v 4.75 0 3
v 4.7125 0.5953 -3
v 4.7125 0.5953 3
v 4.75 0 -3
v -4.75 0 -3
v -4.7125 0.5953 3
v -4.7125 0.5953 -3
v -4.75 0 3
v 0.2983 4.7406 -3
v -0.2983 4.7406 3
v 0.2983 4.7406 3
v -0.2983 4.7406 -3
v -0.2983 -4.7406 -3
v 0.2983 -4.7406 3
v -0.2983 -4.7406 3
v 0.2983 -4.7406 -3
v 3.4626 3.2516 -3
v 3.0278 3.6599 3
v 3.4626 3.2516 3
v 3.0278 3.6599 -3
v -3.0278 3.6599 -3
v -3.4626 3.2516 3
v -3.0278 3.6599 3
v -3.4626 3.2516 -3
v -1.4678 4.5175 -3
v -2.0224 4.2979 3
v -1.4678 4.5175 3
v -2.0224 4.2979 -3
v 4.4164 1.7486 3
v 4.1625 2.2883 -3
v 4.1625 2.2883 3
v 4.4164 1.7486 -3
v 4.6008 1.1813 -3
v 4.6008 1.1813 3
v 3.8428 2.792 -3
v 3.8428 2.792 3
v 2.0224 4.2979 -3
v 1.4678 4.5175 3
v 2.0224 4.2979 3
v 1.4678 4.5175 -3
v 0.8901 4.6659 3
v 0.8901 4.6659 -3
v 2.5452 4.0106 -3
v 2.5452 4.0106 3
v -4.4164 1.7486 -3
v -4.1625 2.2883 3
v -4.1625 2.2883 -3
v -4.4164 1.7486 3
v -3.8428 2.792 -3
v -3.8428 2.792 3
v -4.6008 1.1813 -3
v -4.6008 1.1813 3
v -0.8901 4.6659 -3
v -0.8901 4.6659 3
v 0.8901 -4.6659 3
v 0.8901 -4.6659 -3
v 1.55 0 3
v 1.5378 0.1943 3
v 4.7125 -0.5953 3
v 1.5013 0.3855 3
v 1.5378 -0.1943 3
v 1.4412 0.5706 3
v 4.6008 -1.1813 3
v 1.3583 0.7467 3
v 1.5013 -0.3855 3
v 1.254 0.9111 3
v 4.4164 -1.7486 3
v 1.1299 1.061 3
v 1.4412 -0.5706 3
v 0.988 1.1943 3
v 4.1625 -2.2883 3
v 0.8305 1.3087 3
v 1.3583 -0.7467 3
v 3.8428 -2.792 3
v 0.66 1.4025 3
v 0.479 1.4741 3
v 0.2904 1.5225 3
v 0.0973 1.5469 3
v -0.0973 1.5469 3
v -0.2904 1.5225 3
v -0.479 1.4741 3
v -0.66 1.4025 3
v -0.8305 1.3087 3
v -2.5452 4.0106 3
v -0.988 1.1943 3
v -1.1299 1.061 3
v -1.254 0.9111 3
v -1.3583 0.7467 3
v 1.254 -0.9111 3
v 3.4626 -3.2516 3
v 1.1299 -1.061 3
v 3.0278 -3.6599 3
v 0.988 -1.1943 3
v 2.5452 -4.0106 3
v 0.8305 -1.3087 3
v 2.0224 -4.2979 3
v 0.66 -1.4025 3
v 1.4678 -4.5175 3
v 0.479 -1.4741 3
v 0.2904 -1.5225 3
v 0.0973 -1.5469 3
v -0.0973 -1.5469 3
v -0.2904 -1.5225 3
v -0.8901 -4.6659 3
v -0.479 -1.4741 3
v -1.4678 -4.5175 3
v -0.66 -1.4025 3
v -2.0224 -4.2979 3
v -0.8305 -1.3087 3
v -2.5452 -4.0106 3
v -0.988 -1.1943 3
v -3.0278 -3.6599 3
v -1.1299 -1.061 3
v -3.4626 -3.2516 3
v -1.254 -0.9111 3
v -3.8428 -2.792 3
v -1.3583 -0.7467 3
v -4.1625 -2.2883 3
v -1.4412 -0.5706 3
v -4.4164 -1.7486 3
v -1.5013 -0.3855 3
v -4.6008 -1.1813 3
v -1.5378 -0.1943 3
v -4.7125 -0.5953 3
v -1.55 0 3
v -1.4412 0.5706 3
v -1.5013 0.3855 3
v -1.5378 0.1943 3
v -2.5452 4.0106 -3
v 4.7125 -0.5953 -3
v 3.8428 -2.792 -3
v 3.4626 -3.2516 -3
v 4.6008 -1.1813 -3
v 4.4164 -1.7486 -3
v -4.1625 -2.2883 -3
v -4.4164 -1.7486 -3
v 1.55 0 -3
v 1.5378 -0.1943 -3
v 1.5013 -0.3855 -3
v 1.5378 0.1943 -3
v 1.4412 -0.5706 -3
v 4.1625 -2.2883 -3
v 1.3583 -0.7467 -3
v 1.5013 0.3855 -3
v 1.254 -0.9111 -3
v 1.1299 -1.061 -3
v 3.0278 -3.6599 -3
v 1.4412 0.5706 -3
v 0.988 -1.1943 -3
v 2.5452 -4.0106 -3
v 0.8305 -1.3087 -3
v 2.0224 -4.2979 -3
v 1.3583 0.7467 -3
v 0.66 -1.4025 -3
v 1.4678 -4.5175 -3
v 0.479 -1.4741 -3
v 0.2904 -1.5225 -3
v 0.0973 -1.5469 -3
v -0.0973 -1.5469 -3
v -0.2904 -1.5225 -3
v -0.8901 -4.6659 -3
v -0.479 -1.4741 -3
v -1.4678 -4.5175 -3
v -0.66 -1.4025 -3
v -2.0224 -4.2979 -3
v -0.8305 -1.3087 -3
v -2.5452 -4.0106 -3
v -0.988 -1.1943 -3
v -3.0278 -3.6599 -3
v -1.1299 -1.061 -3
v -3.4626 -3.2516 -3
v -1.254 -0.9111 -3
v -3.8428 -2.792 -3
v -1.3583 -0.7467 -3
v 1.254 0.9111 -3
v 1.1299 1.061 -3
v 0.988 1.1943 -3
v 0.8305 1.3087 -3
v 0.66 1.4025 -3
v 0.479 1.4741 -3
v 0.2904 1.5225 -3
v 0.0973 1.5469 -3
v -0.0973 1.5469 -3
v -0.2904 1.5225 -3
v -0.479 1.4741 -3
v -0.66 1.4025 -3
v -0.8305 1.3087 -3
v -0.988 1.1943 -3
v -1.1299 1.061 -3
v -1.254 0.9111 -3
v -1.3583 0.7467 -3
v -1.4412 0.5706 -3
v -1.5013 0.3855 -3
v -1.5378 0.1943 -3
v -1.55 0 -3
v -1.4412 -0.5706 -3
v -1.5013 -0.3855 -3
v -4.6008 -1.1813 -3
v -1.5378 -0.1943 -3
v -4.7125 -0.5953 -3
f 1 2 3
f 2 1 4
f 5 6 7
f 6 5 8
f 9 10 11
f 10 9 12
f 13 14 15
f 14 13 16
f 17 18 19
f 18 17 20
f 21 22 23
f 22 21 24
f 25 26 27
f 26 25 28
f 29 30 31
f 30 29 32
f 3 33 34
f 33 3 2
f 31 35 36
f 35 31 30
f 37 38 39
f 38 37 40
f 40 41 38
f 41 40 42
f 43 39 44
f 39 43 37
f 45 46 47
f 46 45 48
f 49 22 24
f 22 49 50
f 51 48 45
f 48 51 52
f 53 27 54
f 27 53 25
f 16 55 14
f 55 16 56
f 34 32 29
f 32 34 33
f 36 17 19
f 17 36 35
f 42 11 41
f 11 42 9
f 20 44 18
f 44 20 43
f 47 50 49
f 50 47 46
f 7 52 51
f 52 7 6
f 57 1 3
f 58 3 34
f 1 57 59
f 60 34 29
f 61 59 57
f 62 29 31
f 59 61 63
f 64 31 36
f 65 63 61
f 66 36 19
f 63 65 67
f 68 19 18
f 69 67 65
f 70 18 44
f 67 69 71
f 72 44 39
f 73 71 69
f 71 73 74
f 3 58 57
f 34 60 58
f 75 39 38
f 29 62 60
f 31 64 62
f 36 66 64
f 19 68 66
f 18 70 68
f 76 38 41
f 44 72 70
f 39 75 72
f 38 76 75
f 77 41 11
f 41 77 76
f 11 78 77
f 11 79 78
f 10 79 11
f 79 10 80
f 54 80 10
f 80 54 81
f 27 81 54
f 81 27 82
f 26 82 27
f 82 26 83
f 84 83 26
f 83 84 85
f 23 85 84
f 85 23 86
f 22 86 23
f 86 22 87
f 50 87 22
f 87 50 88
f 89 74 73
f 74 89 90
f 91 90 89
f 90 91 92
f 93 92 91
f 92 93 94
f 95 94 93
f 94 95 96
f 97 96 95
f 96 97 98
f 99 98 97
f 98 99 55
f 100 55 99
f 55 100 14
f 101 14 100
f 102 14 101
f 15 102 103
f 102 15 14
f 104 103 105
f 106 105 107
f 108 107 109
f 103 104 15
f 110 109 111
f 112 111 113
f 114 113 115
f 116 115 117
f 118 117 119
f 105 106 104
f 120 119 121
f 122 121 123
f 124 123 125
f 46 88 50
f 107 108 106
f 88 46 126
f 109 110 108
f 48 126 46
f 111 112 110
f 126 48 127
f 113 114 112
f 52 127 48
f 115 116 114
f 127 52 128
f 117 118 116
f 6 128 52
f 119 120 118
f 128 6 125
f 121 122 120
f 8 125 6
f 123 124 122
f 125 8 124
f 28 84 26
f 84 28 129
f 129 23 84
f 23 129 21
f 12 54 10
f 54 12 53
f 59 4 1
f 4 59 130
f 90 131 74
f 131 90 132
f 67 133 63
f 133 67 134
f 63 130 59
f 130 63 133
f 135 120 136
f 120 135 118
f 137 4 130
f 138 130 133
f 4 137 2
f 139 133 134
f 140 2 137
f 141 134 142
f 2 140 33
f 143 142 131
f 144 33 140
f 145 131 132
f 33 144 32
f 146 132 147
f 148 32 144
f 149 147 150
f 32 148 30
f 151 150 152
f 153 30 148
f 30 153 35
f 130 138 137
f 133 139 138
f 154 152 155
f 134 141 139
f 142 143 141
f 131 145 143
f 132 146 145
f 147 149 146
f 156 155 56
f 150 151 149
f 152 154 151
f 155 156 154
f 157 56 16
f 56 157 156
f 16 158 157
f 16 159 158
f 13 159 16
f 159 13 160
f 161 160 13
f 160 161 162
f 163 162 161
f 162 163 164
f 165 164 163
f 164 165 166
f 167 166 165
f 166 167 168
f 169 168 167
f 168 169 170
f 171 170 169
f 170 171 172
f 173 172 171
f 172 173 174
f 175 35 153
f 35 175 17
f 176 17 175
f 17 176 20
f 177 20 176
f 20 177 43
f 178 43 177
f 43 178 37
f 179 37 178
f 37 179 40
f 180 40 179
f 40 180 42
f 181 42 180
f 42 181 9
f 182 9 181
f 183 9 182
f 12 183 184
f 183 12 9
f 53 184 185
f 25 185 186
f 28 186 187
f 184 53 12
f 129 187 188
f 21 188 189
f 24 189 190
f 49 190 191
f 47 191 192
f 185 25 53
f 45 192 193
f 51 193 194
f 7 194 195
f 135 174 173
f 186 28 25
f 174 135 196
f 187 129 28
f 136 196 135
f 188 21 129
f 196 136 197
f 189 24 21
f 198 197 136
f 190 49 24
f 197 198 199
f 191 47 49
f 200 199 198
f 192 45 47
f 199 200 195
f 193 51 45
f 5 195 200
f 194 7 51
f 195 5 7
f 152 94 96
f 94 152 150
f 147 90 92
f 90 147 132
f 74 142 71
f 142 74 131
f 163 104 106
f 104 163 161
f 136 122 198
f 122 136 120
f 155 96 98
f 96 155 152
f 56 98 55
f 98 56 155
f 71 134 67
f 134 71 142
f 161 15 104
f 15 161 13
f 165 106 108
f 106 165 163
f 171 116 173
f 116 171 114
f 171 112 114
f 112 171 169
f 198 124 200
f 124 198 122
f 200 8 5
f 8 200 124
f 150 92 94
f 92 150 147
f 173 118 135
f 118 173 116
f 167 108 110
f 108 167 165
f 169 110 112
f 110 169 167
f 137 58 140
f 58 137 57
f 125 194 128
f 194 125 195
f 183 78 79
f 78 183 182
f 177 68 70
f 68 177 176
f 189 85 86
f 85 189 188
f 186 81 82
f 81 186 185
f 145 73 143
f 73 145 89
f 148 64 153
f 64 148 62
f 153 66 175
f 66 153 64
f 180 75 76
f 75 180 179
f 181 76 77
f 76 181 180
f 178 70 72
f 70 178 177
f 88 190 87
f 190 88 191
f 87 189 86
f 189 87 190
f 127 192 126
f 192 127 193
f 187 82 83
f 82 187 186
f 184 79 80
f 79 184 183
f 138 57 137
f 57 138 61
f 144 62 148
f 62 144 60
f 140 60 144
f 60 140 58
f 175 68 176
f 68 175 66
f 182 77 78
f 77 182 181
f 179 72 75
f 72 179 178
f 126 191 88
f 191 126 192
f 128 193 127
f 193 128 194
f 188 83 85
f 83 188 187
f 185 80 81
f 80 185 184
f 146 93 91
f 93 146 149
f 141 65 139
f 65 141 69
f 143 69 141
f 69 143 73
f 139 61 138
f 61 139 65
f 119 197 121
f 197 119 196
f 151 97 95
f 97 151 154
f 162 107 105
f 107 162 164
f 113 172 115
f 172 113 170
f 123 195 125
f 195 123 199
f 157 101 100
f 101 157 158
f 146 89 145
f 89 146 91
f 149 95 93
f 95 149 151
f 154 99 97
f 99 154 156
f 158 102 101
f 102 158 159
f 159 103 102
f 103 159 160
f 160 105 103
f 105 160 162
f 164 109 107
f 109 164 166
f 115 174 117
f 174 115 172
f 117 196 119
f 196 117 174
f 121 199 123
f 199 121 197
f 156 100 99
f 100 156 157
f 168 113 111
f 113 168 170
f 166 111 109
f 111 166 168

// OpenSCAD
$fn = 50;


difference() {
	union() {
		translate(v = [0, 0, -3.0000000000]) {
			cylinder(h = 6, r = 4.7500000000);
		}
	}
	union() {
		translate(v = [0, 0, -100.0000000000]) {
			cylinder(h = 200, r = 1.5500000000);
		}
	}
}
